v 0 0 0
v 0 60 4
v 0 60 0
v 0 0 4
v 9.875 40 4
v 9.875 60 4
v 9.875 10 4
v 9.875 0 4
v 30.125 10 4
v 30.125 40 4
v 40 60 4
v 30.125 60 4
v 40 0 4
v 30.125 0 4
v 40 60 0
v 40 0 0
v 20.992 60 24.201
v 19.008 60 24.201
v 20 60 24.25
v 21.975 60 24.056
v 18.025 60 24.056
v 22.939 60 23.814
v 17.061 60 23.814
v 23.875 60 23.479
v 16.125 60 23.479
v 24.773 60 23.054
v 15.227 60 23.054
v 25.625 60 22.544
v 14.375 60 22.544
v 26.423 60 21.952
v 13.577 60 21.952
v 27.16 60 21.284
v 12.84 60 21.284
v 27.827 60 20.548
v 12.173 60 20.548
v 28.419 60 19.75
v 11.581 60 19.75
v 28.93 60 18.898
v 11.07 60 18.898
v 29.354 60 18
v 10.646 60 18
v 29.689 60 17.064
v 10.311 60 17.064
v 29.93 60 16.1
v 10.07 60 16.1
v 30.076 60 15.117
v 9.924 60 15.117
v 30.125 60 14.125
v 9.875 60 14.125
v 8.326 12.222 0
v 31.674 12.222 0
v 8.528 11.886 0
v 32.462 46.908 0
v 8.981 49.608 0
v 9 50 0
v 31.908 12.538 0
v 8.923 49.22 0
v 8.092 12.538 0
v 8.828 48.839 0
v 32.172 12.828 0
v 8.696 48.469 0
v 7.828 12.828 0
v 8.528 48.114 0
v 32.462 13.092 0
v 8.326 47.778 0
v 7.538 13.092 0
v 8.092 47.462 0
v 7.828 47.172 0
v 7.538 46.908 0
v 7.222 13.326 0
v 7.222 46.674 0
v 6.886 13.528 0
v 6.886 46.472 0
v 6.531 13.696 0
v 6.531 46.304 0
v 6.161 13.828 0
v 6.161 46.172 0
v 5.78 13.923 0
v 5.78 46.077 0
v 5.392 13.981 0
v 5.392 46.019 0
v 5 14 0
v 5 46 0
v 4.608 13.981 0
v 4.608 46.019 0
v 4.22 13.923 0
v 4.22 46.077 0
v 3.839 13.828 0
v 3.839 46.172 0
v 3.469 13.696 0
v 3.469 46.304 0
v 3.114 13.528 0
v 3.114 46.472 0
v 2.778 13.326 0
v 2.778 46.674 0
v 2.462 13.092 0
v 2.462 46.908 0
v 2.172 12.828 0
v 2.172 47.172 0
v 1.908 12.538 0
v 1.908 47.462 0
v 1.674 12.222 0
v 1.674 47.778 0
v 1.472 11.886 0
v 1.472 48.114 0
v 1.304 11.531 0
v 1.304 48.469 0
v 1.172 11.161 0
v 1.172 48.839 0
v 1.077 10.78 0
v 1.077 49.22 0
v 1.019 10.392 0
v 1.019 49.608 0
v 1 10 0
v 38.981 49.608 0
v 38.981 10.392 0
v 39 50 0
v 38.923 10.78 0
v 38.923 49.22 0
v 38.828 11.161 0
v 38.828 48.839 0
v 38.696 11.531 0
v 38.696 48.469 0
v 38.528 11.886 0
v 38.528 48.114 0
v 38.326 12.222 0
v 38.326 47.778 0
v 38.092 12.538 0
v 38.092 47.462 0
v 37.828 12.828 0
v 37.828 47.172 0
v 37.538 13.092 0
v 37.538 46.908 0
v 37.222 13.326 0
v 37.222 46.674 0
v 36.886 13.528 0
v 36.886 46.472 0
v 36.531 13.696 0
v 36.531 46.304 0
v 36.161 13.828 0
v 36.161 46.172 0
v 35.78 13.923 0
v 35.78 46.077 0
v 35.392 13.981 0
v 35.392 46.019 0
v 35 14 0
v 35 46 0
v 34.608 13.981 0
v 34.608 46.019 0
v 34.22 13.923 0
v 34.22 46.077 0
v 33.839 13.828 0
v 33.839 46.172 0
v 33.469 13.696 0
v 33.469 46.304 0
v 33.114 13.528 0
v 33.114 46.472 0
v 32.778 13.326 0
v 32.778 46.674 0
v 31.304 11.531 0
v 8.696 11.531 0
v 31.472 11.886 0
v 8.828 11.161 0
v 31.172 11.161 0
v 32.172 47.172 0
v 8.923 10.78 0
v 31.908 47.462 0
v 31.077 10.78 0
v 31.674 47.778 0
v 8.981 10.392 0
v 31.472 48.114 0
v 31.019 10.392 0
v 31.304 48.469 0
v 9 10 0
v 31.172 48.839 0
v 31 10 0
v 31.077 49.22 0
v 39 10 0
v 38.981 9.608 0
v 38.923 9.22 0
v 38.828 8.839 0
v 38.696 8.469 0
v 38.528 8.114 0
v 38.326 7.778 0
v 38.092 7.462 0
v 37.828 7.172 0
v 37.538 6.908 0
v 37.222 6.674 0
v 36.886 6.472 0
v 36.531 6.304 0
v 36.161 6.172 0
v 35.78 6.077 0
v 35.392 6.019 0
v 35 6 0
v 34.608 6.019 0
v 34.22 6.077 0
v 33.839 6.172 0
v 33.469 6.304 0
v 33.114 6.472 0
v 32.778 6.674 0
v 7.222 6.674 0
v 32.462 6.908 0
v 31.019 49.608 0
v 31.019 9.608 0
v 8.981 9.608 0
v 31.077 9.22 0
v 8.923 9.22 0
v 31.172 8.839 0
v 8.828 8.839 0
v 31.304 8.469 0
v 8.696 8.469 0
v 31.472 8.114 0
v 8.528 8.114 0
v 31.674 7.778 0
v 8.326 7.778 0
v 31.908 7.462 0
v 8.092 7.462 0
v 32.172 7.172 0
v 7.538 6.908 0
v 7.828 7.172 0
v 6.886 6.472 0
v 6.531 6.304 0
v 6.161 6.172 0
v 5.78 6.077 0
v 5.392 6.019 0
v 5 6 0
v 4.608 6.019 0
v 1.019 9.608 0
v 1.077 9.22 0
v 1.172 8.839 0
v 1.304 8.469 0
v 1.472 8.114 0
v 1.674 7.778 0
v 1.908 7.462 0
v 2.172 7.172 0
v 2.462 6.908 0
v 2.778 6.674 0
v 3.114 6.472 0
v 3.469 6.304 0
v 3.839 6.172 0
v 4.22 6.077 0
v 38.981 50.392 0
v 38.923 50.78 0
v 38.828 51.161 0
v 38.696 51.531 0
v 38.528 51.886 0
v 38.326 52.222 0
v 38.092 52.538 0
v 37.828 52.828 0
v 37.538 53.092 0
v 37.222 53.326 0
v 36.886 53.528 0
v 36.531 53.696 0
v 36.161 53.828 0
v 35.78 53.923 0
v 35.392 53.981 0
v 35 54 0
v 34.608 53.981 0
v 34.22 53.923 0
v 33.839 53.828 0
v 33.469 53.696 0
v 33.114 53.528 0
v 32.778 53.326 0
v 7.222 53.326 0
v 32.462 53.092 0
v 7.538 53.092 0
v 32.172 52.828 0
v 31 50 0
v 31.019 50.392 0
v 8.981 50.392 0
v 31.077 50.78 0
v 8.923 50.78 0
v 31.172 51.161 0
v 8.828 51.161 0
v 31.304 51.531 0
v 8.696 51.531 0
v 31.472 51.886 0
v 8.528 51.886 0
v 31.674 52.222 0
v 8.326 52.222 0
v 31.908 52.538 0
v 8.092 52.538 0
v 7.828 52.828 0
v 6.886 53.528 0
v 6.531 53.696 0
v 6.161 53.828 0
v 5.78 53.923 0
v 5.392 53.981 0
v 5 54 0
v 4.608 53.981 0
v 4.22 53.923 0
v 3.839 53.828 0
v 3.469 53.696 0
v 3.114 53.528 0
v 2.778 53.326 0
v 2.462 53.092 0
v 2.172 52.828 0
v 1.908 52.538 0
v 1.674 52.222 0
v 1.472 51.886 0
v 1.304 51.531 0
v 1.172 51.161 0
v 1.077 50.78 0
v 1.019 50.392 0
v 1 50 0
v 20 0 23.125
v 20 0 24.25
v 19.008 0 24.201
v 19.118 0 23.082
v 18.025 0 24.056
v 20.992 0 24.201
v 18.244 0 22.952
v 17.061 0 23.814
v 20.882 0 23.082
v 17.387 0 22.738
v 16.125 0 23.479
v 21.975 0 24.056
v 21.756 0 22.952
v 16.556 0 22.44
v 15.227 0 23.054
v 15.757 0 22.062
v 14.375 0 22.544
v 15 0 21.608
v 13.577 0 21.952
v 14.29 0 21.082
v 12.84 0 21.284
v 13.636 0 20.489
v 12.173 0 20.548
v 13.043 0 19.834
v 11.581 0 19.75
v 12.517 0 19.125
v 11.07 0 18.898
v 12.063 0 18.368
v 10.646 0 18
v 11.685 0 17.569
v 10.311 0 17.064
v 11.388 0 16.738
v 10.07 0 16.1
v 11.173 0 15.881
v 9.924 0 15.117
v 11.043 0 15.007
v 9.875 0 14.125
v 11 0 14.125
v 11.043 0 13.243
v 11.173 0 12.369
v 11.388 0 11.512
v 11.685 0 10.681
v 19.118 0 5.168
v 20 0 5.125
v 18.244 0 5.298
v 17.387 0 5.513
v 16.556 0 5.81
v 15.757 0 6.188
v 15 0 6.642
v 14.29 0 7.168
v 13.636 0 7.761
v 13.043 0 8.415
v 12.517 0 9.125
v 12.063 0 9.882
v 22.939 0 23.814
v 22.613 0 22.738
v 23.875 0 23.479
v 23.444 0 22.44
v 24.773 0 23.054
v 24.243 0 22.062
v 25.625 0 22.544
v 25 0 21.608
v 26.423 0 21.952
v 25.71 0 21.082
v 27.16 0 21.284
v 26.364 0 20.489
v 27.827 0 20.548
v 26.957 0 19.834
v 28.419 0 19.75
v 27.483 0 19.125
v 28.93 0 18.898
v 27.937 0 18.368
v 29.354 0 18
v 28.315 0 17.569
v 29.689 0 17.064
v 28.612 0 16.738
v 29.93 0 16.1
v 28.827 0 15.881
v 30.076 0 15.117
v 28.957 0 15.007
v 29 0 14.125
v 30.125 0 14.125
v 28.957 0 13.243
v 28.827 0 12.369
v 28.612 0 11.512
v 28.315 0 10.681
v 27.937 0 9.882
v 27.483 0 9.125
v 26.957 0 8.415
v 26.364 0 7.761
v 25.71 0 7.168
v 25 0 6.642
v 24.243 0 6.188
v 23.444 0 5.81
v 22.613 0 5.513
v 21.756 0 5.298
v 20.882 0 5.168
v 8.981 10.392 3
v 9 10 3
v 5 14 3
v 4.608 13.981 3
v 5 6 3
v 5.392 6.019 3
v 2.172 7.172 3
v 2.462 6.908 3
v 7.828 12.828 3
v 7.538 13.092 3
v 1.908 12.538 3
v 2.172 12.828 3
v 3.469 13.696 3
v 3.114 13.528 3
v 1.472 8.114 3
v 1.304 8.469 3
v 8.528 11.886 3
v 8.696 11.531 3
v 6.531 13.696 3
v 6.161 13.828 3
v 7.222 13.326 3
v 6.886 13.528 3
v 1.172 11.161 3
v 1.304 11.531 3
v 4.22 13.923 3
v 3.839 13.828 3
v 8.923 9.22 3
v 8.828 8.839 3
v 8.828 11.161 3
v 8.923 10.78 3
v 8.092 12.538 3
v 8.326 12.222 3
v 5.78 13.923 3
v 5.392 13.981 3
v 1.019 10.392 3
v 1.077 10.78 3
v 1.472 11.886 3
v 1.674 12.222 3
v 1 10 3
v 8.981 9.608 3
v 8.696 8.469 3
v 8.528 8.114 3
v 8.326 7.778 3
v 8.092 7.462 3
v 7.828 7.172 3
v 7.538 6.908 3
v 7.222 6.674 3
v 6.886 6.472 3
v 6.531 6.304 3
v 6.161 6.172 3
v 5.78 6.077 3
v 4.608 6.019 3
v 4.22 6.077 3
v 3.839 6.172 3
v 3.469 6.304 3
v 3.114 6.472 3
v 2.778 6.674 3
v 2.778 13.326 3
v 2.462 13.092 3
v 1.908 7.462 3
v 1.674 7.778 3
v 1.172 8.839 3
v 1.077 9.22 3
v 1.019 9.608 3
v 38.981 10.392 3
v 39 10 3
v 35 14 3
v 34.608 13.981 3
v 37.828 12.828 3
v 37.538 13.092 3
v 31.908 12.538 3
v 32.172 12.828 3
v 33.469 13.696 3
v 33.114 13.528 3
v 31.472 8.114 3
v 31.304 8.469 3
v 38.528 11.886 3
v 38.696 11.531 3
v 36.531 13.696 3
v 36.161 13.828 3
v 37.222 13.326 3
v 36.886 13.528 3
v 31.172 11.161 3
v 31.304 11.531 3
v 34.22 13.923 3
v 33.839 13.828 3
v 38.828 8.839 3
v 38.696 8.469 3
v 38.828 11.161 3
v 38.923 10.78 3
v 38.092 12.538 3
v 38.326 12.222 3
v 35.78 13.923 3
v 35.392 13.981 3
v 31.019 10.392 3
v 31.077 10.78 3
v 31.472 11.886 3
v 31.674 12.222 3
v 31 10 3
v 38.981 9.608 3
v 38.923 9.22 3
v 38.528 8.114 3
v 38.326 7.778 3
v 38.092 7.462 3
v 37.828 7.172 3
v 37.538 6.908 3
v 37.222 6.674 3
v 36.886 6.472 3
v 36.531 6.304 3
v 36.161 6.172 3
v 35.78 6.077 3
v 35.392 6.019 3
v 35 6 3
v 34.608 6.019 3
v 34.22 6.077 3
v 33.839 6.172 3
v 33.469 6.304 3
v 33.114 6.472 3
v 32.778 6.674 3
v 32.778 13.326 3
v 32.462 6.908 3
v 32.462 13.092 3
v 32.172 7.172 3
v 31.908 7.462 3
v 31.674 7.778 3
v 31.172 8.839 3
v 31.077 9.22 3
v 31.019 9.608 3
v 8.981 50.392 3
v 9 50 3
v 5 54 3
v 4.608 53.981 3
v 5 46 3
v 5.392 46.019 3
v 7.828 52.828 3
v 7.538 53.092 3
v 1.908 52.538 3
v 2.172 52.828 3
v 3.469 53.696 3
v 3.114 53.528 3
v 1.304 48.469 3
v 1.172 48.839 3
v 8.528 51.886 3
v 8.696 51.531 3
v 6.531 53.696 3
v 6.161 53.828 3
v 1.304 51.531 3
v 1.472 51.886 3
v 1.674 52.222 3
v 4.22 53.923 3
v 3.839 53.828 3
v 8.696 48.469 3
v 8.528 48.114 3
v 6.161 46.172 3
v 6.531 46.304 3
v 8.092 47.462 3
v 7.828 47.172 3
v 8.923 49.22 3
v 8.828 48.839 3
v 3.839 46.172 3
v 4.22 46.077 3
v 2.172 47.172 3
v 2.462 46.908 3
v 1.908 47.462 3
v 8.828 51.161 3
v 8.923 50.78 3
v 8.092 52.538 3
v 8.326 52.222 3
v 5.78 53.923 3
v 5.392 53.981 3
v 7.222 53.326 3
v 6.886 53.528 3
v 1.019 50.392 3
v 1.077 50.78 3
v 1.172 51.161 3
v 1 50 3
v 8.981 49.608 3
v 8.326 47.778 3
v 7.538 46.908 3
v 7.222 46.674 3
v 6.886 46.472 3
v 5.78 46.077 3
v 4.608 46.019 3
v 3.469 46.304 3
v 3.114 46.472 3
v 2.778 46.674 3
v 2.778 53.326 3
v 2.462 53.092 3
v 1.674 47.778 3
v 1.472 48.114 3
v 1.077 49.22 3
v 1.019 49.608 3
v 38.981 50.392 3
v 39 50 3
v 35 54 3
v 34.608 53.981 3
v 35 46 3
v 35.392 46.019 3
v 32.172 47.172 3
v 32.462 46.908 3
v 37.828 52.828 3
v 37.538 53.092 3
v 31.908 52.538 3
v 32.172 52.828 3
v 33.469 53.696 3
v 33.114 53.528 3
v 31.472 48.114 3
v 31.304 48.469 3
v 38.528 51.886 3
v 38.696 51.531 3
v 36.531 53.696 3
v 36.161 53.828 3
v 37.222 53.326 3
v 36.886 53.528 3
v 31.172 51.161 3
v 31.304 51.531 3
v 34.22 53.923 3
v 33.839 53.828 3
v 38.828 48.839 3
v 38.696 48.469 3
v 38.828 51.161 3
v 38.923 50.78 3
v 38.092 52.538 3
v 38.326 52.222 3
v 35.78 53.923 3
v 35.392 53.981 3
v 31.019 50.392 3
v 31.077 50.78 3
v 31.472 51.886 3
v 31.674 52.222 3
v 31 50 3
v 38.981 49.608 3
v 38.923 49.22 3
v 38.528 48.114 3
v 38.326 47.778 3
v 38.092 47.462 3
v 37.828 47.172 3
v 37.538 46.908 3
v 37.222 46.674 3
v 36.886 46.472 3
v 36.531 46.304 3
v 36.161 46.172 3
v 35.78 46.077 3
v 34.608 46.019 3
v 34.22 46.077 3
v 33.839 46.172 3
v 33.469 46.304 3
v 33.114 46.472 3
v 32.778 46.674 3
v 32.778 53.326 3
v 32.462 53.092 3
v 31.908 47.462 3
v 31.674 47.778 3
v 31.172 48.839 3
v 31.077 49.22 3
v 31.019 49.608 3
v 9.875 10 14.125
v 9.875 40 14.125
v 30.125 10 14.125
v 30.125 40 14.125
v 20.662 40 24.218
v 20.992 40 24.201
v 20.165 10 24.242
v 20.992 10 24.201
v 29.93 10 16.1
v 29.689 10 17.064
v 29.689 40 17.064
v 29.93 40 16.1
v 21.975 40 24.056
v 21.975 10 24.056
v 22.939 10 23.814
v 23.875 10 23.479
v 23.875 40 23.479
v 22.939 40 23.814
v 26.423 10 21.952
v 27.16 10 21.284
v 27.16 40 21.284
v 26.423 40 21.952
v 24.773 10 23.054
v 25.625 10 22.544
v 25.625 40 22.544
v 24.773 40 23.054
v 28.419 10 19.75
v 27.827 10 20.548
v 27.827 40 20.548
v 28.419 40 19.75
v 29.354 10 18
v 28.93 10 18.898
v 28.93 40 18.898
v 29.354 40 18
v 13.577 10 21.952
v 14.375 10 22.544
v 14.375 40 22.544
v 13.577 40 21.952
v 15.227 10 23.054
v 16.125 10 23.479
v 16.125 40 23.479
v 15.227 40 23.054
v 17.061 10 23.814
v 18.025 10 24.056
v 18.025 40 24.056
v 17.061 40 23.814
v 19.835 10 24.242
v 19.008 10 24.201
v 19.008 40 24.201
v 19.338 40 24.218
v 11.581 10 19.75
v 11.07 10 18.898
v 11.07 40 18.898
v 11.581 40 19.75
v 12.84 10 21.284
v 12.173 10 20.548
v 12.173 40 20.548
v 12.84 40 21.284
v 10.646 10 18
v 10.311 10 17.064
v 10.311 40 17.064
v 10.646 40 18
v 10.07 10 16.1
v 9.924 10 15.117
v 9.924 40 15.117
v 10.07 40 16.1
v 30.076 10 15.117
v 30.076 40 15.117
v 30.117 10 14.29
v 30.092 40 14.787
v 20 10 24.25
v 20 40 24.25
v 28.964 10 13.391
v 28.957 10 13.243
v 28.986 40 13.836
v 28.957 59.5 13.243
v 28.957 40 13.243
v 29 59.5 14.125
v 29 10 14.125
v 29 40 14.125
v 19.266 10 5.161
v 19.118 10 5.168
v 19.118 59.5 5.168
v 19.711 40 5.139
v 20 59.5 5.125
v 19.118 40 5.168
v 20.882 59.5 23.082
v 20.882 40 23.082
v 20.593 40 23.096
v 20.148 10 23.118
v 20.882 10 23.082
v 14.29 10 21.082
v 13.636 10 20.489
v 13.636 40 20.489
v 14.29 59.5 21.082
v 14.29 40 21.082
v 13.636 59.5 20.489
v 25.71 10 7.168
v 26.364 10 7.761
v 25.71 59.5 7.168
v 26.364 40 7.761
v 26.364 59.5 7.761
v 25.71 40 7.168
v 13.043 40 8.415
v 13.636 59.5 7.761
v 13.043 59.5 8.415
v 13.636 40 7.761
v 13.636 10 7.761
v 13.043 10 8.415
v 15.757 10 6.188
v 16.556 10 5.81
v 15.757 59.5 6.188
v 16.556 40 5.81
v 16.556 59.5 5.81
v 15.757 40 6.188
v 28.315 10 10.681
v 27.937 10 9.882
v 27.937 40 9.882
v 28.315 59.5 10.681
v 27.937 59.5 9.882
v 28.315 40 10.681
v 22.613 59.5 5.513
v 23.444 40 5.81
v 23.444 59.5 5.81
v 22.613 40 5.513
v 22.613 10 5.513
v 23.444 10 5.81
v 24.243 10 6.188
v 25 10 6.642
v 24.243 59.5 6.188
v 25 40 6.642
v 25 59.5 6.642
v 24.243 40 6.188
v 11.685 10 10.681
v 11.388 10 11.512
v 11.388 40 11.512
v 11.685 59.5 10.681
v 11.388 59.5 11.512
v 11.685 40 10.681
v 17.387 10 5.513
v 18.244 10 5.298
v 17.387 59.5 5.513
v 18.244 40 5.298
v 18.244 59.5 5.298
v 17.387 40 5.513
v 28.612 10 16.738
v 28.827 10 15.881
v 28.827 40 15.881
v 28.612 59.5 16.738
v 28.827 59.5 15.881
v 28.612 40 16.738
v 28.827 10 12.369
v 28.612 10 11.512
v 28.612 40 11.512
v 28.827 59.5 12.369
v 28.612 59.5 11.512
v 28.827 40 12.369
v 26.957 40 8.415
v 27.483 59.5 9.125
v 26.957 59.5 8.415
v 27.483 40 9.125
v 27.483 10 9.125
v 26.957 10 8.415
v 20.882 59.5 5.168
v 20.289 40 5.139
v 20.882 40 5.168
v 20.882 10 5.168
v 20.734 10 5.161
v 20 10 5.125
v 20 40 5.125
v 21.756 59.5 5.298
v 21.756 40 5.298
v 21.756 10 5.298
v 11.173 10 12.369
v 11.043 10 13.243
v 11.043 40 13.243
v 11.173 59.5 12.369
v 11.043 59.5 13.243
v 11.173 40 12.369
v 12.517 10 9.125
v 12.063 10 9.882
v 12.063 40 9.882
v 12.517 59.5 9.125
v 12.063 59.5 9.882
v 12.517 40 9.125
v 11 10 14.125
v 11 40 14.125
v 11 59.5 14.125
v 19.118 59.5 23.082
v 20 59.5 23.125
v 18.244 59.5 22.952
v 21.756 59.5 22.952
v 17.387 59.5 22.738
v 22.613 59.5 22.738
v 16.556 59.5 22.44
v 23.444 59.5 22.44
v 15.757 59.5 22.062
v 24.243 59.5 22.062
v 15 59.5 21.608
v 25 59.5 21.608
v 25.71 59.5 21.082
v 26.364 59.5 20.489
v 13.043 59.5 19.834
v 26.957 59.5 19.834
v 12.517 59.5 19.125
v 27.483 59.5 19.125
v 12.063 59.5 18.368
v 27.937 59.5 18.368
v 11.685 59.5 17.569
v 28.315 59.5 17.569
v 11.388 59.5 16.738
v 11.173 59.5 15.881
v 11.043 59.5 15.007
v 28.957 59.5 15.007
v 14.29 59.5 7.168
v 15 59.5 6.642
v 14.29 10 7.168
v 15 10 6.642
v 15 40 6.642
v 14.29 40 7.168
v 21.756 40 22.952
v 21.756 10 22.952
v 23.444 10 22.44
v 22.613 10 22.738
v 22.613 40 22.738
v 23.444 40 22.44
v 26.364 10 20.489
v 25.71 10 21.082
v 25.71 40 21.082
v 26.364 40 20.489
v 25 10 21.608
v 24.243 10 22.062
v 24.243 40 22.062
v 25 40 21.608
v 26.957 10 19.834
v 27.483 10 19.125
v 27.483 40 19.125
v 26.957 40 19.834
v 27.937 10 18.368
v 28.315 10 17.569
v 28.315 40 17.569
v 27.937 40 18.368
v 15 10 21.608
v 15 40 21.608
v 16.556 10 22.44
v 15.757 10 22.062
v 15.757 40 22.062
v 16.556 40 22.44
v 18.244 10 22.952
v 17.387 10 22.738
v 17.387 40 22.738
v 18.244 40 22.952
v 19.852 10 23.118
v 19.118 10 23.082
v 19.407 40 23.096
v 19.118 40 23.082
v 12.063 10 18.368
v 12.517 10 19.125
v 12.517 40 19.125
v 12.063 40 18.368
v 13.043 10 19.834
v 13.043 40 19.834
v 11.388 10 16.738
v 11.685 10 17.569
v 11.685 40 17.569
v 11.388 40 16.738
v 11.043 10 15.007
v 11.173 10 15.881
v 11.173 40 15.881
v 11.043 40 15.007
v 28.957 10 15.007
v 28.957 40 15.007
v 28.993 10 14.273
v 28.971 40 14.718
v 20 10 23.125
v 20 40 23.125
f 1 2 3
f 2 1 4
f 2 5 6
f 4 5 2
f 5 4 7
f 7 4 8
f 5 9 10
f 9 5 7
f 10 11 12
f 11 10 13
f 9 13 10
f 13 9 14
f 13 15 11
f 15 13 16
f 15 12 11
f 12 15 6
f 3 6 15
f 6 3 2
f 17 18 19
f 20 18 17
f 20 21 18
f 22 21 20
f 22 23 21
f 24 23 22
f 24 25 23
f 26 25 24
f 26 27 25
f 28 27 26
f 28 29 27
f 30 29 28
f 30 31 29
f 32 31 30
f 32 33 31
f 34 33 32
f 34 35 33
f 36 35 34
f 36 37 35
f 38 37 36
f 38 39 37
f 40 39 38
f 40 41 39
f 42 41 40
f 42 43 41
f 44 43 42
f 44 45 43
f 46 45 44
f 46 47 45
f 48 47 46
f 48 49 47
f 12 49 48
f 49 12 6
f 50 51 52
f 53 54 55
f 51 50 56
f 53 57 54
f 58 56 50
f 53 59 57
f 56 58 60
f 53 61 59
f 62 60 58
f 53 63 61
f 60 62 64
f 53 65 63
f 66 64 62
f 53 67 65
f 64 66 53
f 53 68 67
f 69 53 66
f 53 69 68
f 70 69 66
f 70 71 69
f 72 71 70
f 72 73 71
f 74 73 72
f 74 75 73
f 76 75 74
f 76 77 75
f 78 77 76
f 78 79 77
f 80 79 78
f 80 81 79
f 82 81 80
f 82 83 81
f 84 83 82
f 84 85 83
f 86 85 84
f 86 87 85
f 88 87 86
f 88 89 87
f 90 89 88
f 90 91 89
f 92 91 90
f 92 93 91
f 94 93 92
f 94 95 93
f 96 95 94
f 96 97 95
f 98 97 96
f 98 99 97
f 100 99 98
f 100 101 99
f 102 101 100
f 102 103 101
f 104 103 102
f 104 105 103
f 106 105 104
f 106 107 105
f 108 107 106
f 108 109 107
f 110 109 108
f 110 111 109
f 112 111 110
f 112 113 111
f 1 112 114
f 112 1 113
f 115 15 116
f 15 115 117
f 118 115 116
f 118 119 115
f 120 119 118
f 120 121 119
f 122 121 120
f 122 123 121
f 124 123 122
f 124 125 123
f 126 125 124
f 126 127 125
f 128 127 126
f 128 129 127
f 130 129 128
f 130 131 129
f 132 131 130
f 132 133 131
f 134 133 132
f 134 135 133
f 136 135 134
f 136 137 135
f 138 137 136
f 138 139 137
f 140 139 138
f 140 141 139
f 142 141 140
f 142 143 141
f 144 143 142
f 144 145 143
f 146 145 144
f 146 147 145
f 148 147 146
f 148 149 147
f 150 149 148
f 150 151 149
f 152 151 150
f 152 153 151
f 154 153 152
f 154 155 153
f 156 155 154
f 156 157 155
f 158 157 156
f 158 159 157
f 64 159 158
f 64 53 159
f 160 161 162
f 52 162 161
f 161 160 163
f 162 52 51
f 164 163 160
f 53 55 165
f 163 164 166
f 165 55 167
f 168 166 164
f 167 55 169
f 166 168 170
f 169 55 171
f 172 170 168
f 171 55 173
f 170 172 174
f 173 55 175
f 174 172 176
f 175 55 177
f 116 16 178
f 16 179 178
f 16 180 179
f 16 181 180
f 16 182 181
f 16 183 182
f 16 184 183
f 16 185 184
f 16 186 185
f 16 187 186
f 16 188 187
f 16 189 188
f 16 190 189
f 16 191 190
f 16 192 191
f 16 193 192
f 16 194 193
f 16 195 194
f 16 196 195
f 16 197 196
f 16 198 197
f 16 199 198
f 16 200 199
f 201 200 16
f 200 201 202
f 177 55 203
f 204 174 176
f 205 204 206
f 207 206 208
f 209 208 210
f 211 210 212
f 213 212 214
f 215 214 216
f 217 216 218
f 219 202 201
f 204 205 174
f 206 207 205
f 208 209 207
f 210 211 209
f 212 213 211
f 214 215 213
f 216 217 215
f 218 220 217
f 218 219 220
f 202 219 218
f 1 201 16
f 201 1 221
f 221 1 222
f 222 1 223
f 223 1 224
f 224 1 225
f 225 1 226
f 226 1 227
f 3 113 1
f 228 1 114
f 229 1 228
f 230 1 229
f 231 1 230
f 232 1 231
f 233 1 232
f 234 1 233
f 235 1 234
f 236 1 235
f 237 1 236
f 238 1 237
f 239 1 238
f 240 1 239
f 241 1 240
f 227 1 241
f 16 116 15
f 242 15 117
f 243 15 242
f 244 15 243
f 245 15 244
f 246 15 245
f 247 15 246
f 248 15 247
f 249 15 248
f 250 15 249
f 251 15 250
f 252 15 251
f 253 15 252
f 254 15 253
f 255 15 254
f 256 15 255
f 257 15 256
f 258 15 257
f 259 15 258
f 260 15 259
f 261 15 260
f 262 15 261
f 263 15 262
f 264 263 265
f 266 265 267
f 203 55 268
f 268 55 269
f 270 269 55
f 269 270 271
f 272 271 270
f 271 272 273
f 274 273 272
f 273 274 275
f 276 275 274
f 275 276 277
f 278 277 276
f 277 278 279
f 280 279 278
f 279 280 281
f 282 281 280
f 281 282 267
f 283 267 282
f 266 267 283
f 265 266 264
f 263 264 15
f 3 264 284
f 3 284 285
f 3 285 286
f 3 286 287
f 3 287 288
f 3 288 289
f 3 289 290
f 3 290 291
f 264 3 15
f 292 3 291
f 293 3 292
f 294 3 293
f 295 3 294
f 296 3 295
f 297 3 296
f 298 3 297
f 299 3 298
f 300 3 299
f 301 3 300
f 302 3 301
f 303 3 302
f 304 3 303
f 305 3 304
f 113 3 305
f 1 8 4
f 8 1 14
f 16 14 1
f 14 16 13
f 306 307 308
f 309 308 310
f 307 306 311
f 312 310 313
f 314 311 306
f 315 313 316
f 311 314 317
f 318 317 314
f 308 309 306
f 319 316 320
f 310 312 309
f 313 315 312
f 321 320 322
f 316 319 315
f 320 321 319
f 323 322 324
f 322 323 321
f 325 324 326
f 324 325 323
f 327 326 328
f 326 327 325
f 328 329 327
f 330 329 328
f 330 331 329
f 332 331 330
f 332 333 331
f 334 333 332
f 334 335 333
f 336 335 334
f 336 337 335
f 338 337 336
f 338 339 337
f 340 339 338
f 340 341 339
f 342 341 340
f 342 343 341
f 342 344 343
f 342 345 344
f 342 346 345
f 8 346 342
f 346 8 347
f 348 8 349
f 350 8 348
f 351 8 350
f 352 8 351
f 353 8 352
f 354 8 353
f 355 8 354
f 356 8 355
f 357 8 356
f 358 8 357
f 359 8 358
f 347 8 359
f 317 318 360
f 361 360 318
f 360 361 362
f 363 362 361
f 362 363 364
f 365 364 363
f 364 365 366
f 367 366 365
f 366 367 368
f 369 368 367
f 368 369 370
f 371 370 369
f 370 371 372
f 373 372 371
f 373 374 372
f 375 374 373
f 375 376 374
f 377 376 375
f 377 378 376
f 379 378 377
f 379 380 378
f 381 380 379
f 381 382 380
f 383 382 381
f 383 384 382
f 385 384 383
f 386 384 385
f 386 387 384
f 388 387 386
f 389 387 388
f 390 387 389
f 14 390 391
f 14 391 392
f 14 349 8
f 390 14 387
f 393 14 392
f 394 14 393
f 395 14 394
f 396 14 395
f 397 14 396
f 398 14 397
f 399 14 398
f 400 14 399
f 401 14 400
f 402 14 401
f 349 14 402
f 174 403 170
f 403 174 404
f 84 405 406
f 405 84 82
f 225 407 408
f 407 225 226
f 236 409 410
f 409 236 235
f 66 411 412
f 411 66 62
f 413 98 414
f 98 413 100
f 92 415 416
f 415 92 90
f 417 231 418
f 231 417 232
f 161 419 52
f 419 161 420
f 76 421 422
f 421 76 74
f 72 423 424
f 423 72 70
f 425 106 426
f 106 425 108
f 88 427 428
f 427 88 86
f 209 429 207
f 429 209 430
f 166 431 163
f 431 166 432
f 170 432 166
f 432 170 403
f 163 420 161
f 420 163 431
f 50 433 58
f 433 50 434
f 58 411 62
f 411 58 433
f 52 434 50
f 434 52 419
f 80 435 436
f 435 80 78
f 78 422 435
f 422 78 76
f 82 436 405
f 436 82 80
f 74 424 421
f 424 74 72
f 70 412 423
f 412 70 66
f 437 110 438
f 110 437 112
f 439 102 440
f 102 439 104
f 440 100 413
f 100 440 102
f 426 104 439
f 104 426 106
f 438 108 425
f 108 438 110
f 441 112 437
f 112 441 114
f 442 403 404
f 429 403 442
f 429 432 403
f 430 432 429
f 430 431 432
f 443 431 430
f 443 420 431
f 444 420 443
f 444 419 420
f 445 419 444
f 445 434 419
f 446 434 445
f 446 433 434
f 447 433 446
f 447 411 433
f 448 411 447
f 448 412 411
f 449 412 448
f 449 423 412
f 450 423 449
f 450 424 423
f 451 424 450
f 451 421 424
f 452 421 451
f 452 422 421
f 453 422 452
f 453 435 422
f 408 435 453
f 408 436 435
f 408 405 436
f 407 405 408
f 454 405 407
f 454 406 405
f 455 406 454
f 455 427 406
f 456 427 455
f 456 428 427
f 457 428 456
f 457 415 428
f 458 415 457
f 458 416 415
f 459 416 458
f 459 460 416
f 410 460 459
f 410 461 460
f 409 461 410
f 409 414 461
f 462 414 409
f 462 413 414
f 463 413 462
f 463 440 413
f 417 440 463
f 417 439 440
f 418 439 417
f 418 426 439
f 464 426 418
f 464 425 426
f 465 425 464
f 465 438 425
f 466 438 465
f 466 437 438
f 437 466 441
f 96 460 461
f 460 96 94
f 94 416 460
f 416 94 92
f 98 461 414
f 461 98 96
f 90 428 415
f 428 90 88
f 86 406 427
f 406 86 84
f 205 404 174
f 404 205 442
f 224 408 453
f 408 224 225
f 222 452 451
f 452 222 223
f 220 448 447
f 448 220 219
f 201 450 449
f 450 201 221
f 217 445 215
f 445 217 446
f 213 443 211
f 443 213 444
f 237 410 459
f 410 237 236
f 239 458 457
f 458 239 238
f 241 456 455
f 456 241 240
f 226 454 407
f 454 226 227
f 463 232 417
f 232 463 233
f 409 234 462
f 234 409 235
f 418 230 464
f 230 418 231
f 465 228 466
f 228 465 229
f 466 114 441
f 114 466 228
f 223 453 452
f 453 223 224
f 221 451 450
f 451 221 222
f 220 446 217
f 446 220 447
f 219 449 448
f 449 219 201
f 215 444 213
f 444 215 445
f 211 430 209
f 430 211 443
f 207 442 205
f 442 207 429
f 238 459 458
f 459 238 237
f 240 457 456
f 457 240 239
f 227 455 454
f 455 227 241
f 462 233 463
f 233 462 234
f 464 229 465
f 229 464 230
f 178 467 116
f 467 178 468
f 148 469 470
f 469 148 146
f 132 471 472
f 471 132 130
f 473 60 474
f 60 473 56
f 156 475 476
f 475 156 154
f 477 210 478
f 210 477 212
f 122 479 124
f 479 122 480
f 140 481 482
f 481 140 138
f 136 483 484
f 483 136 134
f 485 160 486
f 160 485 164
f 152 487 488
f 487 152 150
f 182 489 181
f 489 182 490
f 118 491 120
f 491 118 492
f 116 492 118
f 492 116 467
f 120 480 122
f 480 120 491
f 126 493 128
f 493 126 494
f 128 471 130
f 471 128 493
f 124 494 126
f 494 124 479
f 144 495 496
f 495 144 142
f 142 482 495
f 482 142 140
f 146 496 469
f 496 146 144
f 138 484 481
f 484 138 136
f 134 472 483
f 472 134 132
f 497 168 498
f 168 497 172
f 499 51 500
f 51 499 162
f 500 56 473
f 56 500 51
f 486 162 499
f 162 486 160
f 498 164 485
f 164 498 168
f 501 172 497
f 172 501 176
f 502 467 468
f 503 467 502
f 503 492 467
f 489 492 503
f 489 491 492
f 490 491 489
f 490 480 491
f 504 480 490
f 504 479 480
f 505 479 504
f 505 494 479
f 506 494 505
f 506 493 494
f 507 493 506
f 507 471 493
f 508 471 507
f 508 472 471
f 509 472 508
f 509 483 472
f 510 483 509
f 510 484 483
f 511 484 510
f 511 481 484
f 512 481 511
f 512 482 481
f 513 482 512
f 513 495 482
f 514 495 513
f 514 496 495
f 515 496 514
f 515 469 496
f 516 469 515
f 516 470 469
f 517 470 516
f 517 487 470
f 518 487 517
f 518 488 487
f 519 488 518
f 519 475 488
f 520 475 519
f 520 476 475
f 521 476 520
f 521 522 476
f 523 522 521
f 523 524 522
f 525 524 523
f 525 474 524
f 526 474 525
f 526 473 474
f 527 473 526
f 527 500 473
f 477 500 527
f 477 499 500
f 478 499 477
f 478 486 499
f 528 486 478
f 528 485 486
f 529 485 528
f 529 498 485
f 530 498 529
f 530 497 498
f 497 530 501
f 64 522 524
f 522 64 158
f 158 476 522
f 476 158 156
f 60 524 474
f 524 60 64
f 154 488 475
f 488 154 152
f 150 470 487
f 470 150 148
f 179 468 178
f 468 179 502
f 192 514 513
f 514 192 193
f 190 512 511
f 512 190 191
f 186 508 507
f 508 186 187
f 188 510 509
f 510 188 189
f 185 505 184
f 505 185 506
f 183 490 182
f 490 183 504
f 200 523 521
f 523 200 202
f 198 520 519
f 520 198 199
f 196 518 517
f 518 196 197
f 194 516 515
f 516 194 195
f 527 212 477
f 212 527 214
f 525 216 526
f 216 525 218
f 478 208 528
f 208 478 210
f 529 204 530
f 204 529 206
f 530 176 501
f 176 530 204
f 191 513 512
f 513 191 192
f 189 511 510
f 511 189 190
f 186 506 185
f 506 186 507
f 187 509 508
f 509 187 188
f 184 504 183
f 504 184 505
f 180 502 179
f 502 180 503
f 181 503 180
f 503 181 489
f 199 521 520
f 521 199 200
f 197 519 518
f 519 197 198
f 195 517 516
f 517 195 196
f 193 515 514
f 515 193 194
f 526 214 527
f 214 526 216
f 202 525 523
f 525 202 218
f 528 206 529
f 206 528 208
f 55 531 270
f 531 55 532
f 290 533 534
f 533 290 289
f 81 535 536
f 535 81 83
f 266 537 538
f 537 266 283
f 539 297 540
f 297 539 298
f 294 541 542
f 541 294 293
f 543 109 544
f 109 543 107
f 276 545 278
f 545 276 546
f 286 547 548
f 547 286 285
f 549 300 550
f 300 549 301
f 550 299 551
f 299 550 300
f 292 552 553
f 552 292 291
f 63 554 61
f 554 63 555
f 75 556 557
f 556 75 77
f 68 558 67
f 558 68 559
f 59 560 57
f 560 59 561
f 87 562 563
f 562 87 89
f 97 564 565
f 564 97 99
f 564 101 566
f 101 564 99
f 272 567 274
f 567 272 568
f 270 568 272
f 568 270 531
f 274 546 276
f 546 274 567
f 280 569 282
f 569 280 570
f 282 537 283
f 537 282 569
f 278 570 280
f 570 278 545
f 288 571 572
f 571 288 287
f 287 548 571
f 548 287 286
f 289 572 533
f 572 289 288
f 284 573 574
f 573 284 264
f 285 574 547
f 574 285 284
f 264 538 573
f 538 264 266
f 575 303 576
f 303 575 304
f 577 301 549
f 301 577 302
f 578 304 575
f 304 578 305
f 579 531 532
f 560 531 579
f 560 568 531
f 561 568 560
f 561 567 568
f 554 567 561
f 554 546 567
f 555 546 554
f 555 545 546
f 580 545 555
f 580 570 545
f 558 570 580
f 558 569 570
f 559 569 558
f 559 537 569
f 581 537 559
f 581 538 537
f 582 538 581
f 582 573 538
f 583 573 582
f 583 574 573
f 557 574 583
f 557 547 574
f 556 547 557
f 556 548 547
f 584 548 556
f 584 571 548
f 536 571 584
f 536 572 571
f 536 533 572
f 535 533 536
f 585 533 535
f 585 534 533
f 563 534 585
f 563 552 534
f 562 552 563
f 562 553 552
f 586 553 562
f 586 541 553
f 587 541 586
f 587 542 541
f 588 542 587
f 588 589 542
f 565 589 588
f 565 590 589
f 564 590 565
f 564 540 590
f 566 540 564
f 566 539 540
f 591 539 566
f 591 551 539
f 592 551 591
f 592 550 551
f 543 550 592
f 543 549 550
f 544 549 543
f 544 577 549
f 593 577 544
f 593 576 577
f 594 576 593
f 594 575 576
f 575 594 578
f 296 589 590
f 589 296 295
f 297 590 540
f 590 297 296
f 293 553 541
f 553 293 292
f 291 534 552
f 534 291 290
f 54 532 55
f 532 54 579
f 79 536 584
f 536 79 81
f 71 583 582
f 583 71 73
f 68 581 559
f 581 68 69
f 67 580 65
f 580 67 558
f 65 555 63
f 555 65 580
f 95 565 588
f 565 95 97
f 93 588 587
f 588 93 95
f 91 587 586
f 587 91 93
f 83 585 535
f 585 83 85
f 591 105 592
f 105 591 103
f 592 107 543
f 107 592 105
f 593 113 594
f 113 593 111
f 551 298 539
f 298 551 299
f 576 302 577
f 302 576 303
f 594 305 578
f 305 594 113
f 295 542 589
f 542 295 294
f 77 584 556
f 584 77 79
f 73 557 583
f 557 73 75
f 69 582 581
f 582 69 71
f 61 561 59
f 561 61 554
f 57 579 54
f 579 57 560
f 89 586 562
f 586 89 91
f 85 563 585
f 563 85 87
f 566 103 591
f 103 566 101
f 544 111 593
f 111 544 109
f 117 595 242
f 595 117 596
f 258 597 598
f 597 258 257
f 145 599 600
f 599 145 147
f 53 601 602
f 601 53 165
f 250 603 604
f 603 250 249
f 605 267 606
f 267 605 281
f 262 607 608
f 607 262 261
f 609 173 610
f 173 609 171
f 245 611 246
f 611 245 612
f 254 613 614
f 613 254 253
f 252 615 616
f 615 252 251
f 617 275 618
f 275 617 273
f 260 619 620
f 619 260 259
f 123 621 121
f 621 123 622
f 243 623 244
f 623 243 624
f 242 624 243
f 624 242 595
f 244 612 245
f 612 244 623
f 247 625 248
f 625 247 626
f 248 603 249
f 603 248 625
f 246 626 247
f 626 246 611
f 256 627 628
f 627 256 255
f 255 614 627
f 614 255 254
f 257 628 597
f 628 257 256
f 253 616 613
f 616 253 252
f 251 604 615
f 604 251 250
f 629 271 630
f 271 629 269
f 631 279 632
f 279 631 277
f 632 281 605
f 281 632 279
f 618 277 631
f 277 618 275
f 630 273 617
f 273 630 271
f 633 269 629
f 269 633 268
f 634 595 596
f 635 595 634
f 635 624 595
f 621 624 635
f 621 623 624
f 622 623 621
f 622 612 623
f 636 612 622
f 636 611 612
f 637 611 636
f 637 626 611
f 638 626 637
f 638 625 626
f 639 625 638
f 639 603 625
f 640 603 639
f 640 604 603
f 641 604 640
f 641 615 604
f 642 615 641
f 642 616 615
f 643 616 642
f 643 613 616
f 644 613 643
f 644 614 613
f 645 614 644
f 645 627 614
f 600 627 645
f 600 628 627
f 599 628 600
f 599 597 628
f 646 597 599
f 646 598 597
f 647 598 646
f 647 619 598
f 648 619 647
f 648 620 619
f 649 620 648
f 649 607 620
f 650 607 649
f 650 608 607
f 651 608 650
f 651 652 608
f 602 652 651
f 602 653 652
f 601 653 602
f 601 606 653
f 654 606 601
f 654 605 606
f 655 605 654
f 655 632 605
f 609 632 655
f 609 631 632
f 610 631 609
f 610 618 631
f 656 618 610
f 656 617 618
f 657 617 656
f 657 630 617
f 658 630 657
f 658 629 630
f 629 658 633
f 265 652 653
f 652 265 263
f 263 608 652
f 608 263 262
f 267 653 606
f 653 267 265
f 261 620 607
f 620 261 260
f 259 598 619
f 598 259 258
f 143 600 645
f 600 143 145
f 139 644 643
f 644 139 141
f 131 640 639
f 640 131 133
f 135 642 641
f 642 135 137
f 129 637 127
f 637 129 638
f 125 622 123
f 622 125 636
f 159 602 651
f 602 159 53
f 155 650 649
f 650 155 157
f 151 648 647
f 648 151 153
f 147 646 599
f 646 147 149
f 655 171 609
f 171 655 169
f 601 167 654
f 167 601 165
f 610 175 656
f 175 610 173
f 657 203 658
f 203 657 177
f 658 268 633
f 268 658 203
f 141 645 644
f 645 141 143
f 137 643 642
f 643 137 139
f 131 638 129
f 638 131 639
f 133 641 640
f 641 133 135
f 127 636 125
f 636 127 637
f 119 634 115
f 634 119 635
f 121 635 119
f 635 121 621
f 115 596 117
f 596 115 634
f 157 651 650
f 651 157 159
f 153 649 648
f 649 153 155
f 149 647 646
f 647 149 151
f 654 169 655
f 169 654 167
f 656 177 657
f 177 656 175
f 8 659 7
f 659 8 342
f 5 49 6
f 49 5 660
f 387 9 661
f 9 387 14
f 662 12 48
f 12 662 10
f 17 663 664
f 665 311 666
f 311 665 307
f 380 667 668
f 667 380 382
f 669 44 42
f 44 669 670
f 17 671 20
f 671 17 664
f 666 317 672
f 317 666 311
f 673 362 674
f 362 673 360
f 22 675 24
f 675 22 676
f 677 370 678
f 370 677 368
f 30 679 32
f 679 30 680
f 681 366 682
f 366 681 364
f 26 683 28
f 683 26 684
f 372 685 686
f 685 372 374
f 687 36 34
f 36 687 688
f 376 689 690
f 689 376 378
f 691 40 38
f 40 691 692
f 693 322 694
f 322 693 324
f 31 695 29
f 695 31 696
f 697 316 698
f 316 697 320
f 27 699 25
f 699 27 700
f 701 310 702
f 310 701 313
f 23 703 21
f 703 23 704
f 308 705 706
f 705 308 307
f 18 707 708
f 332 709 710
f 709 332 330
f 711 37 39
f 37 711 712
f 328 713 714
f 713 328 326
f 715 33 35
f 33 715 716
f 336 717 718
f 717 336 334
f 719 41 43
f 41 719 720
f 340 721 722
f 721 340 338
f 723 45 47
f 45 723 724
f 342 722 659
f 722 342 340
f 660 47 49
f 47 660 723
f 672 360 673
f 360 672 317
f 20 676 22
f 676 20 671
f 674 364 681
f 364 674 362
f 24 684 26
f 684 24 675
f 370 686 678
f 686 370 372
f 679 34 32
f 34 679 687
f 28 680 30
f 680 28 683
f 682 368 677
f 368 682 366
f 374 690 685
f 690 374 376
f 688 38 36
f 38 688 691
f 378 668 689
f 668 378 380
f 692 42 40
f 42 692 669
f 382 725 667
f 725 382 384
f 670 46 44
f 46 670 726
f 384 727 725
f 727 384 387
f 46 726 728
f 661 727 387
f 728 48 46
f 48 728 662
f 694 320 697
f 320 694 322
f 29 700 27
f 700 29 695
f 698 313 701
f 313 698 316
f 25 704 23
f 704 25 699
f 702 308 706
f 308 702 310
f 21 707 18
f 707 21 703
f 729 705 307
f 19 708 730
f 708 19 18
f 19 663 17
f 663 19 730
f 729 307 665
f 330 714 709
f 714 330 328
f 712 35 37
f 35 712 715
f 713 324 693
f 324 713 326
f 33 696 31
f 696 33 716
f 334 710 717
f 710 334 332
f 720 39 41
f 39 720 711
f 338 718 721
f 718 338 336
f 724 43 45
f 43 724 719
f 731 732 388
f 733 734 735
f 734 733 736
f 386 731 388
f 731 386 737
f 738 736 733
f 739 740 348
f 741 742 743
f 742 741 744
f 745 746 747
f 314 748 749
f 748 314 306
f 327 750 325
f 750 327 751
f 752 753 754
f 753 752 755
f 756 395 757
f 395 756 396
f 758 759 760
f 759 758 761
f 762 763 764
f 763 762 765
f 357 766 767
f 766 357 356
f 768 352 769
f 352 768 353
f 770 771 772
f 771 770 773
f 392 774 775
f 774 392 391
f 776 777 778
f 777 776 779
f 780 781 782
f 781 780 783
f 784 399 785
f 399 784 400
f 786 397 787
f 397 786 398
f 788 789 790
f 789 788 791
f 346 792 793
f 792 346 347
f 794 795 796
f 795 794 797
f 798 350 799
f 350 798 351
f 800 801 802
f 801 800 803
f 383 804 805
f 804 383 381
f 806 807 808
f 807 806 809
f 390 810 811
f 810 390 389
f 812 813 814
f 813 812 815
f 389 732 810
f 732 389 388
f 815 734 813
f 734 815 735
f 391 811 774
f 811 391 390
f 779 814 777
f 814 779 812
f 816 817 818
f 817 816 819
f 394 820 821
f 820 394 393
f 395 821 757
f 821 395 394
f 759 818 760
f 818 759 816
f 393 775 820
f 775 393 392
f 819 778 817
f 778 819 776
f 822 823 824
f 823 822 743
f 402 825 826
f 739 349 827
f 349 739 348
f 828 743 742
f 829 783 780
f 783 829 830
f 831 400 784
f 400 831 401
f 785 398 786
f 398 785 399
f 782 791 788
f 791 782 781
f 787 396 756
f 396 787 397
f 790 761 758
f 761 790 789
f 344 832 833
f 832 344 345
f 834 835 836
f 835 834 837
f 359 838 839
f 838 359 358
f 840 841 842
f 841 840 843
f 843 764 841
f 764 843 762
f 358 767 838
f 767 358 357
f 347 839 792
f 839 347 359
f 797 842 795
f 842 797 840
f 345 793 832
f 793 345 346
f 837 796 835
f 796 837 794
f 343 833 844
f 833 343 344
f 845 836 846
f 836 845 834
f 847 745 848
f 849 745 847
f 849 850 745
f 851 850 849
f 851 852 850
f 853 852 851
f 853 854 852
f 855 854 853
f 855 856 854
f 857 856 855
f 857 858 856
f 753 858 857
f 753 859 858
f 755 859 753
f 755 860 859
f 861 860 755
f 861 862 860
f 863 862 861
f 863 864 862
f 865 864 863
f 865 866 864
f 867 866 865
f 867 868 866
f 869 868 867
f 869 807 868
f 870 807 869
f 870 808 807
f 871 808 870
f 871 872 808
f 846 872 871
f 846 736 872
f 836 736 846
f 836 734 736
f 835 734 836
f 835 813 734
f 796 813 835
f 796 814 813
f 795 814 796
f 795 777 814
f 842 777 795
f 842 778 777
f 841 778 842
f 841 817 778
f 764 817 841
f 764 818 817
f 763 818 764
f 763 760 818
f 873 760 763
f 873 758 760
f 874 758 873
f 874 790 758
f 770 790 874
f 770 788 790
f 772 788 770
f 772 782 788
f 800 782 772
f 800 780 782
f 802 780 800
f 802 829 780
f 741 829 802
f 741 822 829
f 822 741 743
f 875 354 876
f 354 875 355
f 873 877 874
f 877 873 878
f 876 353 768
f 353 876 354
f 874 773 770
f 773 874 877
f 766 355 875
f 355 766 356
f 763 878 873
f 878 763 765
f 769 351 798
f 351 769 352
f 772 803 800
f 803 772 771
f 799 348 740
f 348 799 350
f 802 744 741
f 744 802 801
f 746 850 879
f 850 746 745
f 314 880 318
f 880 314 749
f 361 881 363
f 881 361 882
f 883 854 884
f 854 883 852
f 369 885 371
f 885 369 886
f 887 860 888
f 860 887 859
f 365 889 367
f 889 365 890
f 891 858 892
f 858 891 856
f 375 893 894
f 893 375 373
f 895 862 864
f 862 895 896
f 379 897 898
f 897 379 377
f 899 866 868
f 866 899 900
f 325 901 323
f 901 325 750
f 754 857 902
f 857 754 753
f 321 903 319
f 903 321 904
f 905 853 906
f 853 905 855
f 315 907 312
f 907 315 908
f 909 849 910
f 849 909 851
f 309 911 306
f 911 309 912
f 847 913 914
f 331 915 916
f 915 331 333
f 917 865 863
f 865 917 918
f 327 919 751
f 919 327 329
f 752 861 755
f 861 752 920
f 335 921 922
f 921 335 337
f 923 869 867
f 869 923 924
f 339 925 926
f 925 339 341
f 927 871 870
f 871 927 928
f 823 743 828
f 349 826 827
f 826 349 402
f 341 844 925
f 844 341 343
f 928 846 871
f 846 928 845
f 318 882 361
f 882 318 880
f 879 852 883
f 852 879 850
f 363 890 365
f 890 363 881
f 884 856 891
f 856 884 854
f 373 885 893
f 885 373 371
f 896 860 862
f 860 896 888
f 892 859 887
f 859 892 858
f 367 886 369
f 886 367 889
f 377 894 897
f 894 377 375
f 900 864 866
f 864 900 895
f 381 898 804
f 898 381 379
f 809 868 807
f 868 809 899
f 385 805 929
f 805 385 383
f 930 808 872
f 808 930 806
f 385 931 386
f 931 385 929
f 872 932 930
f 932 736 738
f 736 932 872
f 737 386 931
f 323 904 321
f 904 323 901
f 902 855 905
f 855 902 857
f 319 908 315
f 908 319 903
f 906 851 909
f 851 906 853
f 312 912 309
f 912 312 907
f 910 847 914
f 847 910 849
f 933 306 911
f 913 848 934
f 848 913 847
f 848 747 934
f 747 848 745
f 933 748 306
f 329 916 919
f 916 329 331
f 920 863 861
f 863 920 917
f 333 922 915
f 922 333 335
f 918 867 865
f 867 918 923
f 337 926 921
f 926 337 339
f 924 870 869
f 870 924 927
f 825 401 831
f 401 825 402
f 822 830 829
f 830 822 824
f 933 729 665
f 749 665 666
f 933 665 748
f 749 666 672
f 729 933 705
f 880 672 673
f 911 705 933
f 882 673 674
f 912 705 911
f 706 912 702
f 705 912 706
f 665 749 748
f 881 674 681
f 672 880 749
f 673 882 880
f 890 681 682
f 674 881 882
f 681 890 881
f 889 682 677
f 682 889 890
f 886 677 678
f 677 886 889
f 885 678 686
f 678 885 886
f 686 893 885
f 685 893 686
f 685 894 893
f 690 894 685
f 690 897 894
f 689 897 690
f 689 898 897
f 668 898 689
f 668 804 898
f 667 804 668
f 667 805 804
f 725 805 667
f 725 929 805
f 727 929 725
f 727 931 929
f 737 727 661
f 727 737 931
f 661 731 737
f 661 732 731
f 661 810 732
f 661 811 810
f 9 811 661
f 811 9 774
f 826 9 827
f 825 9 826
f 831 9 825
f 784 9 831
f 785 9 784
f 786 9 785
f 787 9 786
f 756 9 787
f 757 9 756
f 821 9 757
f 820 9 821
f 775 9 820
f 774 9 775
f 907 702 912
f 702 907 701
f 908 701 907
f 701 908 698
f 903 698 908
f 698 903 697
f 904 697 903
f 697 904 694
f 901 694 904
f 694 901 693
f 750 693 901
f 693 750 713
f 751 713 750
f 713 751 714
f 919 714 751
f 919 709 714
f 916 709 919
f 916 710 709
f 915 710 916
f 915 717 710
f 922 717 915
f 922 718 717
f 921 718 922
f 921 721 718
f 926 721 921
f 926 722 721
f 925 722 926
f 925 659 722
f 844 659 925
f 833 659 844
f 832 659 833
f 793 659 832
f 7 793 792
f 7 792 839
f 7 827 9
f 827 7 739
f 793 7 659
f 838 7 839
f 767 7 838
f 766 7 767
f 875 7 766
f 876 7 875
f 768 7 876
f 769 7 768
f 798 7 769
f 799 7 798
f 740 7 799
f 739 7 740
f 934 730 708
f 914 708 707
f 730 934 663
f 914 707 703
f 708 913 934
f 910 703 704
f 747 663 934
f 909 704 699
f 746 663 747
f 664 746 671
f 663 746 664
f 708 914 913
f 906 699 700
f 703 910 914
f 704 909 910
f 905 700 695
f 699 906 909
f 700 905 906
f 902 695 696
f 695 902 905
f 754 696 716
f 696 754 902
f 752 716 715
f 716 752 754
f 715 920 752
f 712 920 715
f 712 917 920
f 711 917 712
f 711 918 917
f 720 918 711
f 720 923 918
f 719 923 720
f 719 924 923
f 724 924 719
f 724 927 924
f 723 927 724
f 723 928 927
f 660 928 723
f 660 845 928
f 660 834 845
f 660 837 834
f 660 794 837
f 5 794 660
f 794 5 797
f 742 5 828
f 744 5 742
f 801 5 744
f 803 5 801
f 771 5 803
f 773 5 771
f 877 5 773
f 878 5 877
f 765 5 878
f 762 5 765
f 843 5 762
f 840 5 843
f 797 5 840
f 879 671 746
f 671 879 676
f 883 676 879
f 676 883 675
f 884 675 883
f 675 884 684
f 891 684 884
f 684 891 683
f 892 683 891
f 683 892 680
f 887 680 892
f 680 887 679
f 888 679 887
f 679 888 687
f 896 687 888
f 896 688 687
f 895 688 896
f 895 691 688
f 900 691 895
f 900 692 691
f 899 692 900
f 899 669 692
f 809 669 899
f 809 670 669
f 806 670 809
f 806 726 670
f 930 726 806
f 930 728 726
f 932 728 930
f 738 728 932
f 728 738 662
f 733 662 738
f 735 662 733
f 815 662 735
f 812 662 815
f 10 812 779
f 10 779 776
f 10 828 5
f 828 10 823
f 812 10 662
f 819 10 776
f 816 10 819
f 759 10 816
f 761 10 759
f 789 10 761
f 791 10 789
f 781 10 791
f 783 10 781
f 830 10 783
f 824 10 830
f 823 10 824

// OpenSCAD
first_layer_height = 0.20;
layer_height = 0.15;
layer_width = 0.45;

$fn = 64;

wall_thickness = 2.5*layer_width;
bottom_thickness = first_layer_height + 2*layer_height;

magnet_diam = 8;
magnet_height = 3;

base_plate_width = 40;
base_plate_length = 60;
base_plate_thickness = 4;

holder_inner_diam = 18;
holder_outer_diam = holder_inner_diam + 2*wall_thickness;

difference() {
    cube([base_plate_width, base_plate_length, base_plate_thickness]);
    
    translate([5,10,0])
    cylinder(magnet_height, d=magnet_diam);
    
    translate([35,10,0])
    cylinder(magnet_height, d=magnet_diam);
    
    translate([5,50,0])
    cylinder(magnet_height, d=magnet_diam);
    
    translate([35,50,0])
    cylinder(magnet_height, d=magnet_diam);
}

difference() {
    
union() {
    translate([(base_plate_width - holder_outer_diam)/2,0,base_plate_thickness])
    cube([holder_outer_diam, base_plate_length, holder_outer_diam/2]);

    translate([20,0,base_plate_thickness+(holder_outer_diam/2)])
    rotate(270, [1,0,0])
    cylinder(base_plate_length, d=holder_outer_diam);
}

    translate([20,0,base_plate_thickness+(holder_outer_diam/2)])
    rotate(270, [1,0,0])
    cylinder(base_plate_length-bottom_thickness, d=holder_inner_diam);

    translate([9,10,base_plate_thickness])
    cube([22, base_plate_length/2, holder_outer_diam]);
}
